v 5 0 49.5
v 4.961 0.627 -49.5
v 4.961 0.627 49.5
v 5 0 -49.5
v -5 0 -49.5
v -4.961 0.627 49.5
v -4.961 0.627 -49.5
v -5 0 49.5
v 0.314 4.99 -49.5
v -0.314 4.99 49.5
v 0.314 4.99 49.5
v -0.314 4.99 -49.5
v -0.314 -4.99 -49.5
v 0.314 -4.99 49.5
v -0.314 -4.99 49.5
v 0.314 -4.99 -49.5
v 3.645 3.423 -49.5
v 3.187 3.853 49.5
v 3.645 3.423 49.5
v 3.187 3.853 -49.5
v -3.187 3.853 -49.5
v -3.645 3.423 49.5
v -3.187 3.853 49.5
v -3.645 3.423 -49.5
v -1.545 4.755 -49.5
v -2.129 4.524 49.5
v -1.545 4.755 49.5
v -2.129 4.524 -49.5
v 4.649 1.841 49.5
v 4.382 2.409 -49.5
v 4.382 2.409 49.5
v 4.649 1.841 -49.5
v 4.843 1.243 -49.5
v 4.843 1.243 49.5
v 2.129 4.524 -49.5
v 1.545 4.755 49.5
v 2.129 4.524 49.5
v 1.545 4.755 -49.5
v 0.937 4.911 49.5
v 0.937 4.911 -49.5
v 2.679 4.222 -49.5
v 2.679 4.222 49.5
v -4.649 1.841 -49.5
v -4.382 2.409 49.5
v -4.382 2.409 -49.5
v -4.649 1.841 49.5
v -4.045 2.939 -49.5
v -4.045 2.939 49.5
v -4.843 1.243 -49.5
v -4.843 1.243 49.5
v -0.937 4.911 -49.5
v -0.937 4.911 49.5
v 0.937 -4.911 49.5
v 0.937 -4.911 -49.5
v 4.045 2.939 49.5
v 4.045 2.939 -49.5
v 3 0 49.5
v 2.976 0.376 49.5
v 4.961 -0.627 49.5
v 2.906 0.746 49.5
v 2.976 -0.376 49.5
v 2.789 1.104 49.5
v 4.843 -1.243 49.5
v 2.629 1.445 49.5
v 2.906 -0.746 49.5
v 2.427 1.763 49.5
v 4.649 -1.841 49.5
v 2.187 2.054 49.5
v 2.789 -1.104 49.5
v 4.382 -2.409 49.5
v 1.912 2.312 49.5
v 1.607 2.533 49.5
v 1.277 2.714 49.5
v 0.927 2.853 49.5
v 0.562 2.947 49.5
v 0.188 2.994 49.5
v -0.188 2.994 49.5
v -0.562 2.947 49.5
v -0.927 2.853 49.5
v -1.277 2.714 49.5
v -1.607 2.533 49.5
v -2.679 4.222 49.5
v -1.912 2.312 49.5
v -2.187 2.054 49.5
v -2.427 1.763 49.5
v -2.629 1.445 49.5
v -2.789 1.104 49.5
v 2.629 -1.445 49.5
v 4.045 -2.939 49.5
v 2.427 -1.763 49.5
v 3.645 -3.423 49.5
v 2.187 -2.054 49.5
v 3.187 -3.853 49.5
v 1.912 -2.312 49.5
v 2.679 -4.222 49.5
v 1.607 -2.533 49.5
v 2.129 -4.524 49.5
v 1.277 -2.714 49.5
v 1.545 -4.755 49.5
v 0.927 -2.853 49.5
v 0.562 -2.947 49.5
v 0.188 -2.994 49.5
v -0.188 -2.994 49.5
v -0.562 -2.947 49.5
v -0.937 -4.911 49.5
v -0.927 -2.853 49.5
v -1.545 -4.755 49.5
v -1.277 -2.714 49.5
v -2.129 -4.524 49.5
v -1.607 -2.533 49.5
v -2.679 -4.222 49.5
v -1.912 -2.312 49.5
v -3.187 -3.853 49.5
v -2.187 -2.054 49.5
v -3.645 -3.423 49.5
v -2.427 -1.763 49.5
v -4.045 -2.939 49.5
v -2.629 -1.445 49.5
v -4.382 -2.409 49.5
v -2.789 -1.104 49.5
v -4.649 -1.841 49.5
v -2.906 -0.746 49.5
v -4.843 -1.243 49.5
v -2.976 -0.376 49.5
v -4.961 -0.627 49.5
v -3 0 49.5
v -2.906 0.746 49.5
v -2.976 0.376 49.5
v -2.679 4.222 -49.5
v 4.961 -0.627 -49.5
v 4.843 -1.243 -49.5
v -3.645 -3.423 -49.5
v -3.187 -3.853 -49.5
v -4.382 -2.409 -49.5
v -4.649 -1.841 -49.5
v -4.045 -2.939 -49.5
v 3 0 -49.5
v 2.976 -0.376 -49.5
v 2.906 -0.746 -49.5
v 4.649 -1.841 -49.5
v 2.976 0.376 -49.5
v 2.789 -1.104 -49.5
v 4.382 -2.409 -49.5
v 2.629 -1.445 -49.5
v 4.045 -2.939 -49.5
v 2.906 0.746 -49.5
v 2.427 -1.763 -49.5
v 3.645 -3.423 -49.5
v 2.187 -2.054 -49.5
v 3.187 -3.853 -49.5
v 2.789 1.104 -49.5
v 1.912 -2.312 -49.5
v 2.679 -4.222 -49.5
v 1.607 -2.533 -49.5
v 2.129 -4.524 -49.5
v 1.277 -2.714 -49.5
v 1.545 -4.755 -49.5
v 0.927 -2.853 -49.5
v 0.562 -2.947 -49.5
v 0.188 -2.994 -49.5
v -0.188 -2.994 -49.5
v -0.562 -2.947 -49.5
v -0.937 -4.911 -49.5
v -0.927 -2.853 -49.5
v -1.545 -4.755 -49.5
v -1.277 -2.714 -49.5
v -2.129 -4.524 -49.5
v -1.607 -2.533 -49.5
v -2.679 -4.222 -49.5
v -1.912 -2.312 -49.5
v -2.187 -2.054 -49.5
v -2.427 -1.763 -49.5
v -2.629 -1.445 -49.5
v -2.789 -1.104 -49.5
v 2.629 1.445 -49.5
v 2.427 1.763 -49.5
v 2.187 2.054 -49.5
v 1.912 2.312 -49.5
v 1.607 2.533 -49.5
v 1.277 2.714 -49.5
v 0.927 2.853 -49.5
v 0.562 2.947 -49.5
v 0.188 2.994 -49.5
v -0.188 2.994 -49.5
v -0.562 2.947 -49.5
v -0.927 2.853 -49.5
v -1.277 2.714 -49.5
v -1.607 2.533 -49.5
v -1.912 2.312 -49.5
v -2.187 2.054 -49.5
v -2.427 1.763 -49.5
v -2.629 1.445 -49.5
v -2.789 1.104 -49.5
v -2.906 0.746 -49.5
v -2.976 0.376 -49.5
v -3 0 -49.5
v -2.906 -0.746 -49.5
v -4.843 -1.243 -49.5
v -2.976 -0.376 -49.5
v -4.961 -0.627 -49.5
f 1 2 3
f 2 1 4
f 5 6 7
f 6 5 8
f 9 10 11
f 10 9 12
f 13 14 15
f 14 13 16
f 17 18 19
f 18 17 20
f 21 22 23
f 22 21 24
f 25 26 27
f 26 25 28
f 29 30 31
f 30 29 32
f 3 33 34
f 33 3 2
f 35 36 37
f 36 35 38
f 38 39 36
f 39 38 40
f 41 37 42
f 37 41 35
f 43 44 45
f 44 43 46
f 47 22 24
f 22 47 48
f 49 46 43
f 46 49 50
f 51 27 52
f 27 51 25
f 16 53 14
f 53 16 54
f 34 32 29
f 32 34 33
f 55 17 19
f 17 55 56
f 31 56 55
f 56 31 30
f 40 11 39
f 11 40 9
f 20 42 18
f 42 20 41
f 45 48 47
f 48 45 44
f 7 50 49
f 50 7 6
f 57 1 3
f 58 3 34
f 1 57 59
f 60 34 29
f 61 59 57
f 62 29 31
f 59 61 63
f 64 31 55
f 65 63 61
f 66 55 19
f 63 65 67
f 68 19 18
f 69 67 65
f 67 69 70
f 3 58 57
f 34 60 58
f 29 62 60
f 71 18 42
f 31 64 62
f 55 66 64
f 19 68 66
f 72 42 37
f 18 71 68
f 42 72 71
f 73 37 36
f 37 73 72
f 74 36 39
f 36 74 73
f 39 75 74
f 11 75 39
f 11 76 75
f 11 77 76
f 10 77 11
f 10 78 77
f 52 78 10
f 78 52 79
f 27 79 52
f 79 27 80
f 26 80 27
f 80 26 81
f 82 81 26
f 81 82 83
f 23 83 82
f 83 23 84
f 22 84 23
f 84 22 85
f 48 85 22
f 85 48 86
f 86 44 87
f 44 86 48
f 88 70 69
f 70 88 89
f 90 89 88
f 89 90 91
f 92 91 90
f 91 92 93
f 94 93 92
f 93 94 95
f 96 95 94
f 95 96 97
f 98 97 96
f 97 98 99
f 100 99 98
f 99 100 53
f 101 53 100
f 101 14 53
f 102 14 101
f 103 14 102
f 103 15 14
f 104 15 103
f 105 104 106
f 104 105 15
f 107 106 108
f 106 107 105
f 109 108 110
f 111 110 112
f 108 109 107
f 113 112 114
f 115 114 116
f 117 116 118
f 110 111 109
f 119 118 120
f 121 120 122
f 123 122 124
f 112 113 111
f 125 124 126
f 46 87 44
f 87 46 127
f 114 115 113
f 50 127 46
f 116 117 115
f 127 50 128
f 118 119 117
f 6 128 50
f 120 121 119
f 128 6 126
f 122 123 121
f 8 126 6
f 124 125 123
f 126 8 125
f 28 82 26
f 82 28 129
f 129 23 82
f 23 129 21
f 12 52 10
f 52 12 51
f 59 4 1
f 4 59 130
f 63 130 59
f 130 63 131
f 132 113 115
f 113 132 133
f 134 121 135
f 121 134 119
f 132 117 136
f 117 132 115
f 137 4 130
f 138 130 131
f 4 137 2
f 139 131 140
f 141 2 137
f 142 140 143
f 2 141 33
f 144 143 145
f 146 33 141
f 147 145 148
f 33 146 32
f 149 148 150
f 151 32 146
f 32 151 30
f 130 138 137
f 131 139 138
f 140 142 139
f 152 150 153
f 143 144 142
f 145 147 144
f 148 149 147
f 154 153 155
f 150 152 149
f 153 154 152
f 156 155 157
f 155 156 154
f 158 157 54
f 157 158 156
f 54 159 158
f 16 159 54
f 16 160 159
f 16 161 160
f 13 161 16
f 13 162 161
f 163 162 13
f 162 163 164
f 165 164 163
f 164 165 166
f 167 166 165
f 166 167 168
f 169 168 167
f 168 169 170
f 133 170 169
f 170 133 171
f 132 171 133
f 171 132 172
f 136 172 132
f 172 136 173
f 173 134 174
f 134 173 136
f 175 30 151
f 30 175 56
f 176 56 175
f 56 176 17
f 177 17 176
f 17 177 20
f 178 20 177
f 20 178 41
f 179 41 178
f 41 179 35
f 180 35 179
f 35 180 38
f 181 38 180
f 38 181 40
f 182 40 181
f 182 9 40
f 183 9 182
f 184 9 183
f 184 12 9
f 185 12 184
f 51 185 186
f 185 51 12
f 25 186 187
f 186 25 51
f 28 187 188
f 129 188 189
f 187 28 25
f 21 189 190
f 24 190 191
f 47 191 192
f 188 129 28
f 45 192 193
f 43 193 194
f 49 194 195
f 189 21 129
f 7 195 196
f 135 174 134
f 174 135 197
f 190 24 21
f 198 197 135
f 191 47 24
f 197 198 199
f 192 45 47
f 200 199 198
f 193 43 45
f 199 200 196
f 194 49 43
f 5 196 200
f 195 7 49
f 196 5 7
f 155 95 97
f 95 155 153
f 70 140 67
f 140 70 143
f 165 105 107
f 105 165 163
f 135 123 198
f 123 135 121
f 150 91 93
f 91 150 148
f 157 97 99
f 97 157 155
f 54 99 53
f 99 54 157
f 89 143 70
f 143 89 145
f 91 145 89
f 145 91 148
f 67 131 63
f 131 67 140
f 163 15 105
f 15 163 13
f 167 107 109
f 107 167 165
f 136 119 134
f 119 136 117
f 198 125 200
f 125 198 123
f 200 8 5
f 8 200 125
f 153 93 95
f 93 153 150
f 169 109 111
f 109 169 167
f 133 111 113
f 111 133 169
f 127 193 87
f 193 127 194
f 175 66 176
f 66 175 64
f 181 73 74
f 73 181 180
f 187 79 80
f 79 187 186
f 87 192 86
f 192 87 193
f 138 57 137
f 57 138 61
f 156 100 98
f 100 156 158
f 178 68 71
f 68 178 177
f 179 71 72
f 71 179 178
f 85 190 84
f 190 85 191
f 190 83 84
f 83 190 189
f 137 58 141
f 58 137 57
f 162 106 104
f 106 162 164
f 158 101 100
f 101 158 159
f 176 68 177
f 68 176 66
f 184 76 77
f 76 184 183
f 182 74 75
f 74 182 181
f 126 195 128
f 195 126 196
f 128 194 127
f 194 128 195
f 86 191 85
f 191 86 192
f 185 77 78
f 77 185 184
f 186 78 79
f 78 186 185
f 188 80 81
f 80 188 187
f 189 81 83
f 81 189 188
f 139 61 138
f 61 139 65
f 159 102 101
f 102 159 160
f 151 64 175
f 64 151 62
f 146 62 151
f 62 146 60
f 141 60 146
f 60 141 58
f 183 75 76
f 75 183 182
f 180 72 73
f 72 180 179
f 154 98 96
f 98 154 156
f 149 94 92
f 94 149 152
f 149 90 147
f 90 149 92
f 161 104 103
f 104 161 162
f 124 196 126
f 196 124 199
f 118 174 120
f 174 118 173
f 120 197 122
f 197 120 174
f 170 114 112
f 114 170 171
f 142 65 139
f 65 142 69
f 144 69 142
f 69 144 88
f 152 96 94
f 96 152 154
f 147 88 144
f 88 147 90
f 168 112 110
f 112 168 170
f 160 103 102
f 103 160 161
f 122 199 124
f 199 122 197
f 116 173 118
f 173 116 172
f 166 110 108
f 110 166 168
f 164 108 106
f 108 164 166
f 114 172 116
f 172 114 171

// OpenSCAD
$fn = 50;


difference() {
	union() {
		translate(v = [0, 0, -49.5000000000]) {
			cylinder(h = 99, r = 5.0000000000);
		}
	}
	union() {
		translate(v = [0, 0, -100.0000000000]) {
			cylinder(h = 200, r = 3);
		}
	}
}
